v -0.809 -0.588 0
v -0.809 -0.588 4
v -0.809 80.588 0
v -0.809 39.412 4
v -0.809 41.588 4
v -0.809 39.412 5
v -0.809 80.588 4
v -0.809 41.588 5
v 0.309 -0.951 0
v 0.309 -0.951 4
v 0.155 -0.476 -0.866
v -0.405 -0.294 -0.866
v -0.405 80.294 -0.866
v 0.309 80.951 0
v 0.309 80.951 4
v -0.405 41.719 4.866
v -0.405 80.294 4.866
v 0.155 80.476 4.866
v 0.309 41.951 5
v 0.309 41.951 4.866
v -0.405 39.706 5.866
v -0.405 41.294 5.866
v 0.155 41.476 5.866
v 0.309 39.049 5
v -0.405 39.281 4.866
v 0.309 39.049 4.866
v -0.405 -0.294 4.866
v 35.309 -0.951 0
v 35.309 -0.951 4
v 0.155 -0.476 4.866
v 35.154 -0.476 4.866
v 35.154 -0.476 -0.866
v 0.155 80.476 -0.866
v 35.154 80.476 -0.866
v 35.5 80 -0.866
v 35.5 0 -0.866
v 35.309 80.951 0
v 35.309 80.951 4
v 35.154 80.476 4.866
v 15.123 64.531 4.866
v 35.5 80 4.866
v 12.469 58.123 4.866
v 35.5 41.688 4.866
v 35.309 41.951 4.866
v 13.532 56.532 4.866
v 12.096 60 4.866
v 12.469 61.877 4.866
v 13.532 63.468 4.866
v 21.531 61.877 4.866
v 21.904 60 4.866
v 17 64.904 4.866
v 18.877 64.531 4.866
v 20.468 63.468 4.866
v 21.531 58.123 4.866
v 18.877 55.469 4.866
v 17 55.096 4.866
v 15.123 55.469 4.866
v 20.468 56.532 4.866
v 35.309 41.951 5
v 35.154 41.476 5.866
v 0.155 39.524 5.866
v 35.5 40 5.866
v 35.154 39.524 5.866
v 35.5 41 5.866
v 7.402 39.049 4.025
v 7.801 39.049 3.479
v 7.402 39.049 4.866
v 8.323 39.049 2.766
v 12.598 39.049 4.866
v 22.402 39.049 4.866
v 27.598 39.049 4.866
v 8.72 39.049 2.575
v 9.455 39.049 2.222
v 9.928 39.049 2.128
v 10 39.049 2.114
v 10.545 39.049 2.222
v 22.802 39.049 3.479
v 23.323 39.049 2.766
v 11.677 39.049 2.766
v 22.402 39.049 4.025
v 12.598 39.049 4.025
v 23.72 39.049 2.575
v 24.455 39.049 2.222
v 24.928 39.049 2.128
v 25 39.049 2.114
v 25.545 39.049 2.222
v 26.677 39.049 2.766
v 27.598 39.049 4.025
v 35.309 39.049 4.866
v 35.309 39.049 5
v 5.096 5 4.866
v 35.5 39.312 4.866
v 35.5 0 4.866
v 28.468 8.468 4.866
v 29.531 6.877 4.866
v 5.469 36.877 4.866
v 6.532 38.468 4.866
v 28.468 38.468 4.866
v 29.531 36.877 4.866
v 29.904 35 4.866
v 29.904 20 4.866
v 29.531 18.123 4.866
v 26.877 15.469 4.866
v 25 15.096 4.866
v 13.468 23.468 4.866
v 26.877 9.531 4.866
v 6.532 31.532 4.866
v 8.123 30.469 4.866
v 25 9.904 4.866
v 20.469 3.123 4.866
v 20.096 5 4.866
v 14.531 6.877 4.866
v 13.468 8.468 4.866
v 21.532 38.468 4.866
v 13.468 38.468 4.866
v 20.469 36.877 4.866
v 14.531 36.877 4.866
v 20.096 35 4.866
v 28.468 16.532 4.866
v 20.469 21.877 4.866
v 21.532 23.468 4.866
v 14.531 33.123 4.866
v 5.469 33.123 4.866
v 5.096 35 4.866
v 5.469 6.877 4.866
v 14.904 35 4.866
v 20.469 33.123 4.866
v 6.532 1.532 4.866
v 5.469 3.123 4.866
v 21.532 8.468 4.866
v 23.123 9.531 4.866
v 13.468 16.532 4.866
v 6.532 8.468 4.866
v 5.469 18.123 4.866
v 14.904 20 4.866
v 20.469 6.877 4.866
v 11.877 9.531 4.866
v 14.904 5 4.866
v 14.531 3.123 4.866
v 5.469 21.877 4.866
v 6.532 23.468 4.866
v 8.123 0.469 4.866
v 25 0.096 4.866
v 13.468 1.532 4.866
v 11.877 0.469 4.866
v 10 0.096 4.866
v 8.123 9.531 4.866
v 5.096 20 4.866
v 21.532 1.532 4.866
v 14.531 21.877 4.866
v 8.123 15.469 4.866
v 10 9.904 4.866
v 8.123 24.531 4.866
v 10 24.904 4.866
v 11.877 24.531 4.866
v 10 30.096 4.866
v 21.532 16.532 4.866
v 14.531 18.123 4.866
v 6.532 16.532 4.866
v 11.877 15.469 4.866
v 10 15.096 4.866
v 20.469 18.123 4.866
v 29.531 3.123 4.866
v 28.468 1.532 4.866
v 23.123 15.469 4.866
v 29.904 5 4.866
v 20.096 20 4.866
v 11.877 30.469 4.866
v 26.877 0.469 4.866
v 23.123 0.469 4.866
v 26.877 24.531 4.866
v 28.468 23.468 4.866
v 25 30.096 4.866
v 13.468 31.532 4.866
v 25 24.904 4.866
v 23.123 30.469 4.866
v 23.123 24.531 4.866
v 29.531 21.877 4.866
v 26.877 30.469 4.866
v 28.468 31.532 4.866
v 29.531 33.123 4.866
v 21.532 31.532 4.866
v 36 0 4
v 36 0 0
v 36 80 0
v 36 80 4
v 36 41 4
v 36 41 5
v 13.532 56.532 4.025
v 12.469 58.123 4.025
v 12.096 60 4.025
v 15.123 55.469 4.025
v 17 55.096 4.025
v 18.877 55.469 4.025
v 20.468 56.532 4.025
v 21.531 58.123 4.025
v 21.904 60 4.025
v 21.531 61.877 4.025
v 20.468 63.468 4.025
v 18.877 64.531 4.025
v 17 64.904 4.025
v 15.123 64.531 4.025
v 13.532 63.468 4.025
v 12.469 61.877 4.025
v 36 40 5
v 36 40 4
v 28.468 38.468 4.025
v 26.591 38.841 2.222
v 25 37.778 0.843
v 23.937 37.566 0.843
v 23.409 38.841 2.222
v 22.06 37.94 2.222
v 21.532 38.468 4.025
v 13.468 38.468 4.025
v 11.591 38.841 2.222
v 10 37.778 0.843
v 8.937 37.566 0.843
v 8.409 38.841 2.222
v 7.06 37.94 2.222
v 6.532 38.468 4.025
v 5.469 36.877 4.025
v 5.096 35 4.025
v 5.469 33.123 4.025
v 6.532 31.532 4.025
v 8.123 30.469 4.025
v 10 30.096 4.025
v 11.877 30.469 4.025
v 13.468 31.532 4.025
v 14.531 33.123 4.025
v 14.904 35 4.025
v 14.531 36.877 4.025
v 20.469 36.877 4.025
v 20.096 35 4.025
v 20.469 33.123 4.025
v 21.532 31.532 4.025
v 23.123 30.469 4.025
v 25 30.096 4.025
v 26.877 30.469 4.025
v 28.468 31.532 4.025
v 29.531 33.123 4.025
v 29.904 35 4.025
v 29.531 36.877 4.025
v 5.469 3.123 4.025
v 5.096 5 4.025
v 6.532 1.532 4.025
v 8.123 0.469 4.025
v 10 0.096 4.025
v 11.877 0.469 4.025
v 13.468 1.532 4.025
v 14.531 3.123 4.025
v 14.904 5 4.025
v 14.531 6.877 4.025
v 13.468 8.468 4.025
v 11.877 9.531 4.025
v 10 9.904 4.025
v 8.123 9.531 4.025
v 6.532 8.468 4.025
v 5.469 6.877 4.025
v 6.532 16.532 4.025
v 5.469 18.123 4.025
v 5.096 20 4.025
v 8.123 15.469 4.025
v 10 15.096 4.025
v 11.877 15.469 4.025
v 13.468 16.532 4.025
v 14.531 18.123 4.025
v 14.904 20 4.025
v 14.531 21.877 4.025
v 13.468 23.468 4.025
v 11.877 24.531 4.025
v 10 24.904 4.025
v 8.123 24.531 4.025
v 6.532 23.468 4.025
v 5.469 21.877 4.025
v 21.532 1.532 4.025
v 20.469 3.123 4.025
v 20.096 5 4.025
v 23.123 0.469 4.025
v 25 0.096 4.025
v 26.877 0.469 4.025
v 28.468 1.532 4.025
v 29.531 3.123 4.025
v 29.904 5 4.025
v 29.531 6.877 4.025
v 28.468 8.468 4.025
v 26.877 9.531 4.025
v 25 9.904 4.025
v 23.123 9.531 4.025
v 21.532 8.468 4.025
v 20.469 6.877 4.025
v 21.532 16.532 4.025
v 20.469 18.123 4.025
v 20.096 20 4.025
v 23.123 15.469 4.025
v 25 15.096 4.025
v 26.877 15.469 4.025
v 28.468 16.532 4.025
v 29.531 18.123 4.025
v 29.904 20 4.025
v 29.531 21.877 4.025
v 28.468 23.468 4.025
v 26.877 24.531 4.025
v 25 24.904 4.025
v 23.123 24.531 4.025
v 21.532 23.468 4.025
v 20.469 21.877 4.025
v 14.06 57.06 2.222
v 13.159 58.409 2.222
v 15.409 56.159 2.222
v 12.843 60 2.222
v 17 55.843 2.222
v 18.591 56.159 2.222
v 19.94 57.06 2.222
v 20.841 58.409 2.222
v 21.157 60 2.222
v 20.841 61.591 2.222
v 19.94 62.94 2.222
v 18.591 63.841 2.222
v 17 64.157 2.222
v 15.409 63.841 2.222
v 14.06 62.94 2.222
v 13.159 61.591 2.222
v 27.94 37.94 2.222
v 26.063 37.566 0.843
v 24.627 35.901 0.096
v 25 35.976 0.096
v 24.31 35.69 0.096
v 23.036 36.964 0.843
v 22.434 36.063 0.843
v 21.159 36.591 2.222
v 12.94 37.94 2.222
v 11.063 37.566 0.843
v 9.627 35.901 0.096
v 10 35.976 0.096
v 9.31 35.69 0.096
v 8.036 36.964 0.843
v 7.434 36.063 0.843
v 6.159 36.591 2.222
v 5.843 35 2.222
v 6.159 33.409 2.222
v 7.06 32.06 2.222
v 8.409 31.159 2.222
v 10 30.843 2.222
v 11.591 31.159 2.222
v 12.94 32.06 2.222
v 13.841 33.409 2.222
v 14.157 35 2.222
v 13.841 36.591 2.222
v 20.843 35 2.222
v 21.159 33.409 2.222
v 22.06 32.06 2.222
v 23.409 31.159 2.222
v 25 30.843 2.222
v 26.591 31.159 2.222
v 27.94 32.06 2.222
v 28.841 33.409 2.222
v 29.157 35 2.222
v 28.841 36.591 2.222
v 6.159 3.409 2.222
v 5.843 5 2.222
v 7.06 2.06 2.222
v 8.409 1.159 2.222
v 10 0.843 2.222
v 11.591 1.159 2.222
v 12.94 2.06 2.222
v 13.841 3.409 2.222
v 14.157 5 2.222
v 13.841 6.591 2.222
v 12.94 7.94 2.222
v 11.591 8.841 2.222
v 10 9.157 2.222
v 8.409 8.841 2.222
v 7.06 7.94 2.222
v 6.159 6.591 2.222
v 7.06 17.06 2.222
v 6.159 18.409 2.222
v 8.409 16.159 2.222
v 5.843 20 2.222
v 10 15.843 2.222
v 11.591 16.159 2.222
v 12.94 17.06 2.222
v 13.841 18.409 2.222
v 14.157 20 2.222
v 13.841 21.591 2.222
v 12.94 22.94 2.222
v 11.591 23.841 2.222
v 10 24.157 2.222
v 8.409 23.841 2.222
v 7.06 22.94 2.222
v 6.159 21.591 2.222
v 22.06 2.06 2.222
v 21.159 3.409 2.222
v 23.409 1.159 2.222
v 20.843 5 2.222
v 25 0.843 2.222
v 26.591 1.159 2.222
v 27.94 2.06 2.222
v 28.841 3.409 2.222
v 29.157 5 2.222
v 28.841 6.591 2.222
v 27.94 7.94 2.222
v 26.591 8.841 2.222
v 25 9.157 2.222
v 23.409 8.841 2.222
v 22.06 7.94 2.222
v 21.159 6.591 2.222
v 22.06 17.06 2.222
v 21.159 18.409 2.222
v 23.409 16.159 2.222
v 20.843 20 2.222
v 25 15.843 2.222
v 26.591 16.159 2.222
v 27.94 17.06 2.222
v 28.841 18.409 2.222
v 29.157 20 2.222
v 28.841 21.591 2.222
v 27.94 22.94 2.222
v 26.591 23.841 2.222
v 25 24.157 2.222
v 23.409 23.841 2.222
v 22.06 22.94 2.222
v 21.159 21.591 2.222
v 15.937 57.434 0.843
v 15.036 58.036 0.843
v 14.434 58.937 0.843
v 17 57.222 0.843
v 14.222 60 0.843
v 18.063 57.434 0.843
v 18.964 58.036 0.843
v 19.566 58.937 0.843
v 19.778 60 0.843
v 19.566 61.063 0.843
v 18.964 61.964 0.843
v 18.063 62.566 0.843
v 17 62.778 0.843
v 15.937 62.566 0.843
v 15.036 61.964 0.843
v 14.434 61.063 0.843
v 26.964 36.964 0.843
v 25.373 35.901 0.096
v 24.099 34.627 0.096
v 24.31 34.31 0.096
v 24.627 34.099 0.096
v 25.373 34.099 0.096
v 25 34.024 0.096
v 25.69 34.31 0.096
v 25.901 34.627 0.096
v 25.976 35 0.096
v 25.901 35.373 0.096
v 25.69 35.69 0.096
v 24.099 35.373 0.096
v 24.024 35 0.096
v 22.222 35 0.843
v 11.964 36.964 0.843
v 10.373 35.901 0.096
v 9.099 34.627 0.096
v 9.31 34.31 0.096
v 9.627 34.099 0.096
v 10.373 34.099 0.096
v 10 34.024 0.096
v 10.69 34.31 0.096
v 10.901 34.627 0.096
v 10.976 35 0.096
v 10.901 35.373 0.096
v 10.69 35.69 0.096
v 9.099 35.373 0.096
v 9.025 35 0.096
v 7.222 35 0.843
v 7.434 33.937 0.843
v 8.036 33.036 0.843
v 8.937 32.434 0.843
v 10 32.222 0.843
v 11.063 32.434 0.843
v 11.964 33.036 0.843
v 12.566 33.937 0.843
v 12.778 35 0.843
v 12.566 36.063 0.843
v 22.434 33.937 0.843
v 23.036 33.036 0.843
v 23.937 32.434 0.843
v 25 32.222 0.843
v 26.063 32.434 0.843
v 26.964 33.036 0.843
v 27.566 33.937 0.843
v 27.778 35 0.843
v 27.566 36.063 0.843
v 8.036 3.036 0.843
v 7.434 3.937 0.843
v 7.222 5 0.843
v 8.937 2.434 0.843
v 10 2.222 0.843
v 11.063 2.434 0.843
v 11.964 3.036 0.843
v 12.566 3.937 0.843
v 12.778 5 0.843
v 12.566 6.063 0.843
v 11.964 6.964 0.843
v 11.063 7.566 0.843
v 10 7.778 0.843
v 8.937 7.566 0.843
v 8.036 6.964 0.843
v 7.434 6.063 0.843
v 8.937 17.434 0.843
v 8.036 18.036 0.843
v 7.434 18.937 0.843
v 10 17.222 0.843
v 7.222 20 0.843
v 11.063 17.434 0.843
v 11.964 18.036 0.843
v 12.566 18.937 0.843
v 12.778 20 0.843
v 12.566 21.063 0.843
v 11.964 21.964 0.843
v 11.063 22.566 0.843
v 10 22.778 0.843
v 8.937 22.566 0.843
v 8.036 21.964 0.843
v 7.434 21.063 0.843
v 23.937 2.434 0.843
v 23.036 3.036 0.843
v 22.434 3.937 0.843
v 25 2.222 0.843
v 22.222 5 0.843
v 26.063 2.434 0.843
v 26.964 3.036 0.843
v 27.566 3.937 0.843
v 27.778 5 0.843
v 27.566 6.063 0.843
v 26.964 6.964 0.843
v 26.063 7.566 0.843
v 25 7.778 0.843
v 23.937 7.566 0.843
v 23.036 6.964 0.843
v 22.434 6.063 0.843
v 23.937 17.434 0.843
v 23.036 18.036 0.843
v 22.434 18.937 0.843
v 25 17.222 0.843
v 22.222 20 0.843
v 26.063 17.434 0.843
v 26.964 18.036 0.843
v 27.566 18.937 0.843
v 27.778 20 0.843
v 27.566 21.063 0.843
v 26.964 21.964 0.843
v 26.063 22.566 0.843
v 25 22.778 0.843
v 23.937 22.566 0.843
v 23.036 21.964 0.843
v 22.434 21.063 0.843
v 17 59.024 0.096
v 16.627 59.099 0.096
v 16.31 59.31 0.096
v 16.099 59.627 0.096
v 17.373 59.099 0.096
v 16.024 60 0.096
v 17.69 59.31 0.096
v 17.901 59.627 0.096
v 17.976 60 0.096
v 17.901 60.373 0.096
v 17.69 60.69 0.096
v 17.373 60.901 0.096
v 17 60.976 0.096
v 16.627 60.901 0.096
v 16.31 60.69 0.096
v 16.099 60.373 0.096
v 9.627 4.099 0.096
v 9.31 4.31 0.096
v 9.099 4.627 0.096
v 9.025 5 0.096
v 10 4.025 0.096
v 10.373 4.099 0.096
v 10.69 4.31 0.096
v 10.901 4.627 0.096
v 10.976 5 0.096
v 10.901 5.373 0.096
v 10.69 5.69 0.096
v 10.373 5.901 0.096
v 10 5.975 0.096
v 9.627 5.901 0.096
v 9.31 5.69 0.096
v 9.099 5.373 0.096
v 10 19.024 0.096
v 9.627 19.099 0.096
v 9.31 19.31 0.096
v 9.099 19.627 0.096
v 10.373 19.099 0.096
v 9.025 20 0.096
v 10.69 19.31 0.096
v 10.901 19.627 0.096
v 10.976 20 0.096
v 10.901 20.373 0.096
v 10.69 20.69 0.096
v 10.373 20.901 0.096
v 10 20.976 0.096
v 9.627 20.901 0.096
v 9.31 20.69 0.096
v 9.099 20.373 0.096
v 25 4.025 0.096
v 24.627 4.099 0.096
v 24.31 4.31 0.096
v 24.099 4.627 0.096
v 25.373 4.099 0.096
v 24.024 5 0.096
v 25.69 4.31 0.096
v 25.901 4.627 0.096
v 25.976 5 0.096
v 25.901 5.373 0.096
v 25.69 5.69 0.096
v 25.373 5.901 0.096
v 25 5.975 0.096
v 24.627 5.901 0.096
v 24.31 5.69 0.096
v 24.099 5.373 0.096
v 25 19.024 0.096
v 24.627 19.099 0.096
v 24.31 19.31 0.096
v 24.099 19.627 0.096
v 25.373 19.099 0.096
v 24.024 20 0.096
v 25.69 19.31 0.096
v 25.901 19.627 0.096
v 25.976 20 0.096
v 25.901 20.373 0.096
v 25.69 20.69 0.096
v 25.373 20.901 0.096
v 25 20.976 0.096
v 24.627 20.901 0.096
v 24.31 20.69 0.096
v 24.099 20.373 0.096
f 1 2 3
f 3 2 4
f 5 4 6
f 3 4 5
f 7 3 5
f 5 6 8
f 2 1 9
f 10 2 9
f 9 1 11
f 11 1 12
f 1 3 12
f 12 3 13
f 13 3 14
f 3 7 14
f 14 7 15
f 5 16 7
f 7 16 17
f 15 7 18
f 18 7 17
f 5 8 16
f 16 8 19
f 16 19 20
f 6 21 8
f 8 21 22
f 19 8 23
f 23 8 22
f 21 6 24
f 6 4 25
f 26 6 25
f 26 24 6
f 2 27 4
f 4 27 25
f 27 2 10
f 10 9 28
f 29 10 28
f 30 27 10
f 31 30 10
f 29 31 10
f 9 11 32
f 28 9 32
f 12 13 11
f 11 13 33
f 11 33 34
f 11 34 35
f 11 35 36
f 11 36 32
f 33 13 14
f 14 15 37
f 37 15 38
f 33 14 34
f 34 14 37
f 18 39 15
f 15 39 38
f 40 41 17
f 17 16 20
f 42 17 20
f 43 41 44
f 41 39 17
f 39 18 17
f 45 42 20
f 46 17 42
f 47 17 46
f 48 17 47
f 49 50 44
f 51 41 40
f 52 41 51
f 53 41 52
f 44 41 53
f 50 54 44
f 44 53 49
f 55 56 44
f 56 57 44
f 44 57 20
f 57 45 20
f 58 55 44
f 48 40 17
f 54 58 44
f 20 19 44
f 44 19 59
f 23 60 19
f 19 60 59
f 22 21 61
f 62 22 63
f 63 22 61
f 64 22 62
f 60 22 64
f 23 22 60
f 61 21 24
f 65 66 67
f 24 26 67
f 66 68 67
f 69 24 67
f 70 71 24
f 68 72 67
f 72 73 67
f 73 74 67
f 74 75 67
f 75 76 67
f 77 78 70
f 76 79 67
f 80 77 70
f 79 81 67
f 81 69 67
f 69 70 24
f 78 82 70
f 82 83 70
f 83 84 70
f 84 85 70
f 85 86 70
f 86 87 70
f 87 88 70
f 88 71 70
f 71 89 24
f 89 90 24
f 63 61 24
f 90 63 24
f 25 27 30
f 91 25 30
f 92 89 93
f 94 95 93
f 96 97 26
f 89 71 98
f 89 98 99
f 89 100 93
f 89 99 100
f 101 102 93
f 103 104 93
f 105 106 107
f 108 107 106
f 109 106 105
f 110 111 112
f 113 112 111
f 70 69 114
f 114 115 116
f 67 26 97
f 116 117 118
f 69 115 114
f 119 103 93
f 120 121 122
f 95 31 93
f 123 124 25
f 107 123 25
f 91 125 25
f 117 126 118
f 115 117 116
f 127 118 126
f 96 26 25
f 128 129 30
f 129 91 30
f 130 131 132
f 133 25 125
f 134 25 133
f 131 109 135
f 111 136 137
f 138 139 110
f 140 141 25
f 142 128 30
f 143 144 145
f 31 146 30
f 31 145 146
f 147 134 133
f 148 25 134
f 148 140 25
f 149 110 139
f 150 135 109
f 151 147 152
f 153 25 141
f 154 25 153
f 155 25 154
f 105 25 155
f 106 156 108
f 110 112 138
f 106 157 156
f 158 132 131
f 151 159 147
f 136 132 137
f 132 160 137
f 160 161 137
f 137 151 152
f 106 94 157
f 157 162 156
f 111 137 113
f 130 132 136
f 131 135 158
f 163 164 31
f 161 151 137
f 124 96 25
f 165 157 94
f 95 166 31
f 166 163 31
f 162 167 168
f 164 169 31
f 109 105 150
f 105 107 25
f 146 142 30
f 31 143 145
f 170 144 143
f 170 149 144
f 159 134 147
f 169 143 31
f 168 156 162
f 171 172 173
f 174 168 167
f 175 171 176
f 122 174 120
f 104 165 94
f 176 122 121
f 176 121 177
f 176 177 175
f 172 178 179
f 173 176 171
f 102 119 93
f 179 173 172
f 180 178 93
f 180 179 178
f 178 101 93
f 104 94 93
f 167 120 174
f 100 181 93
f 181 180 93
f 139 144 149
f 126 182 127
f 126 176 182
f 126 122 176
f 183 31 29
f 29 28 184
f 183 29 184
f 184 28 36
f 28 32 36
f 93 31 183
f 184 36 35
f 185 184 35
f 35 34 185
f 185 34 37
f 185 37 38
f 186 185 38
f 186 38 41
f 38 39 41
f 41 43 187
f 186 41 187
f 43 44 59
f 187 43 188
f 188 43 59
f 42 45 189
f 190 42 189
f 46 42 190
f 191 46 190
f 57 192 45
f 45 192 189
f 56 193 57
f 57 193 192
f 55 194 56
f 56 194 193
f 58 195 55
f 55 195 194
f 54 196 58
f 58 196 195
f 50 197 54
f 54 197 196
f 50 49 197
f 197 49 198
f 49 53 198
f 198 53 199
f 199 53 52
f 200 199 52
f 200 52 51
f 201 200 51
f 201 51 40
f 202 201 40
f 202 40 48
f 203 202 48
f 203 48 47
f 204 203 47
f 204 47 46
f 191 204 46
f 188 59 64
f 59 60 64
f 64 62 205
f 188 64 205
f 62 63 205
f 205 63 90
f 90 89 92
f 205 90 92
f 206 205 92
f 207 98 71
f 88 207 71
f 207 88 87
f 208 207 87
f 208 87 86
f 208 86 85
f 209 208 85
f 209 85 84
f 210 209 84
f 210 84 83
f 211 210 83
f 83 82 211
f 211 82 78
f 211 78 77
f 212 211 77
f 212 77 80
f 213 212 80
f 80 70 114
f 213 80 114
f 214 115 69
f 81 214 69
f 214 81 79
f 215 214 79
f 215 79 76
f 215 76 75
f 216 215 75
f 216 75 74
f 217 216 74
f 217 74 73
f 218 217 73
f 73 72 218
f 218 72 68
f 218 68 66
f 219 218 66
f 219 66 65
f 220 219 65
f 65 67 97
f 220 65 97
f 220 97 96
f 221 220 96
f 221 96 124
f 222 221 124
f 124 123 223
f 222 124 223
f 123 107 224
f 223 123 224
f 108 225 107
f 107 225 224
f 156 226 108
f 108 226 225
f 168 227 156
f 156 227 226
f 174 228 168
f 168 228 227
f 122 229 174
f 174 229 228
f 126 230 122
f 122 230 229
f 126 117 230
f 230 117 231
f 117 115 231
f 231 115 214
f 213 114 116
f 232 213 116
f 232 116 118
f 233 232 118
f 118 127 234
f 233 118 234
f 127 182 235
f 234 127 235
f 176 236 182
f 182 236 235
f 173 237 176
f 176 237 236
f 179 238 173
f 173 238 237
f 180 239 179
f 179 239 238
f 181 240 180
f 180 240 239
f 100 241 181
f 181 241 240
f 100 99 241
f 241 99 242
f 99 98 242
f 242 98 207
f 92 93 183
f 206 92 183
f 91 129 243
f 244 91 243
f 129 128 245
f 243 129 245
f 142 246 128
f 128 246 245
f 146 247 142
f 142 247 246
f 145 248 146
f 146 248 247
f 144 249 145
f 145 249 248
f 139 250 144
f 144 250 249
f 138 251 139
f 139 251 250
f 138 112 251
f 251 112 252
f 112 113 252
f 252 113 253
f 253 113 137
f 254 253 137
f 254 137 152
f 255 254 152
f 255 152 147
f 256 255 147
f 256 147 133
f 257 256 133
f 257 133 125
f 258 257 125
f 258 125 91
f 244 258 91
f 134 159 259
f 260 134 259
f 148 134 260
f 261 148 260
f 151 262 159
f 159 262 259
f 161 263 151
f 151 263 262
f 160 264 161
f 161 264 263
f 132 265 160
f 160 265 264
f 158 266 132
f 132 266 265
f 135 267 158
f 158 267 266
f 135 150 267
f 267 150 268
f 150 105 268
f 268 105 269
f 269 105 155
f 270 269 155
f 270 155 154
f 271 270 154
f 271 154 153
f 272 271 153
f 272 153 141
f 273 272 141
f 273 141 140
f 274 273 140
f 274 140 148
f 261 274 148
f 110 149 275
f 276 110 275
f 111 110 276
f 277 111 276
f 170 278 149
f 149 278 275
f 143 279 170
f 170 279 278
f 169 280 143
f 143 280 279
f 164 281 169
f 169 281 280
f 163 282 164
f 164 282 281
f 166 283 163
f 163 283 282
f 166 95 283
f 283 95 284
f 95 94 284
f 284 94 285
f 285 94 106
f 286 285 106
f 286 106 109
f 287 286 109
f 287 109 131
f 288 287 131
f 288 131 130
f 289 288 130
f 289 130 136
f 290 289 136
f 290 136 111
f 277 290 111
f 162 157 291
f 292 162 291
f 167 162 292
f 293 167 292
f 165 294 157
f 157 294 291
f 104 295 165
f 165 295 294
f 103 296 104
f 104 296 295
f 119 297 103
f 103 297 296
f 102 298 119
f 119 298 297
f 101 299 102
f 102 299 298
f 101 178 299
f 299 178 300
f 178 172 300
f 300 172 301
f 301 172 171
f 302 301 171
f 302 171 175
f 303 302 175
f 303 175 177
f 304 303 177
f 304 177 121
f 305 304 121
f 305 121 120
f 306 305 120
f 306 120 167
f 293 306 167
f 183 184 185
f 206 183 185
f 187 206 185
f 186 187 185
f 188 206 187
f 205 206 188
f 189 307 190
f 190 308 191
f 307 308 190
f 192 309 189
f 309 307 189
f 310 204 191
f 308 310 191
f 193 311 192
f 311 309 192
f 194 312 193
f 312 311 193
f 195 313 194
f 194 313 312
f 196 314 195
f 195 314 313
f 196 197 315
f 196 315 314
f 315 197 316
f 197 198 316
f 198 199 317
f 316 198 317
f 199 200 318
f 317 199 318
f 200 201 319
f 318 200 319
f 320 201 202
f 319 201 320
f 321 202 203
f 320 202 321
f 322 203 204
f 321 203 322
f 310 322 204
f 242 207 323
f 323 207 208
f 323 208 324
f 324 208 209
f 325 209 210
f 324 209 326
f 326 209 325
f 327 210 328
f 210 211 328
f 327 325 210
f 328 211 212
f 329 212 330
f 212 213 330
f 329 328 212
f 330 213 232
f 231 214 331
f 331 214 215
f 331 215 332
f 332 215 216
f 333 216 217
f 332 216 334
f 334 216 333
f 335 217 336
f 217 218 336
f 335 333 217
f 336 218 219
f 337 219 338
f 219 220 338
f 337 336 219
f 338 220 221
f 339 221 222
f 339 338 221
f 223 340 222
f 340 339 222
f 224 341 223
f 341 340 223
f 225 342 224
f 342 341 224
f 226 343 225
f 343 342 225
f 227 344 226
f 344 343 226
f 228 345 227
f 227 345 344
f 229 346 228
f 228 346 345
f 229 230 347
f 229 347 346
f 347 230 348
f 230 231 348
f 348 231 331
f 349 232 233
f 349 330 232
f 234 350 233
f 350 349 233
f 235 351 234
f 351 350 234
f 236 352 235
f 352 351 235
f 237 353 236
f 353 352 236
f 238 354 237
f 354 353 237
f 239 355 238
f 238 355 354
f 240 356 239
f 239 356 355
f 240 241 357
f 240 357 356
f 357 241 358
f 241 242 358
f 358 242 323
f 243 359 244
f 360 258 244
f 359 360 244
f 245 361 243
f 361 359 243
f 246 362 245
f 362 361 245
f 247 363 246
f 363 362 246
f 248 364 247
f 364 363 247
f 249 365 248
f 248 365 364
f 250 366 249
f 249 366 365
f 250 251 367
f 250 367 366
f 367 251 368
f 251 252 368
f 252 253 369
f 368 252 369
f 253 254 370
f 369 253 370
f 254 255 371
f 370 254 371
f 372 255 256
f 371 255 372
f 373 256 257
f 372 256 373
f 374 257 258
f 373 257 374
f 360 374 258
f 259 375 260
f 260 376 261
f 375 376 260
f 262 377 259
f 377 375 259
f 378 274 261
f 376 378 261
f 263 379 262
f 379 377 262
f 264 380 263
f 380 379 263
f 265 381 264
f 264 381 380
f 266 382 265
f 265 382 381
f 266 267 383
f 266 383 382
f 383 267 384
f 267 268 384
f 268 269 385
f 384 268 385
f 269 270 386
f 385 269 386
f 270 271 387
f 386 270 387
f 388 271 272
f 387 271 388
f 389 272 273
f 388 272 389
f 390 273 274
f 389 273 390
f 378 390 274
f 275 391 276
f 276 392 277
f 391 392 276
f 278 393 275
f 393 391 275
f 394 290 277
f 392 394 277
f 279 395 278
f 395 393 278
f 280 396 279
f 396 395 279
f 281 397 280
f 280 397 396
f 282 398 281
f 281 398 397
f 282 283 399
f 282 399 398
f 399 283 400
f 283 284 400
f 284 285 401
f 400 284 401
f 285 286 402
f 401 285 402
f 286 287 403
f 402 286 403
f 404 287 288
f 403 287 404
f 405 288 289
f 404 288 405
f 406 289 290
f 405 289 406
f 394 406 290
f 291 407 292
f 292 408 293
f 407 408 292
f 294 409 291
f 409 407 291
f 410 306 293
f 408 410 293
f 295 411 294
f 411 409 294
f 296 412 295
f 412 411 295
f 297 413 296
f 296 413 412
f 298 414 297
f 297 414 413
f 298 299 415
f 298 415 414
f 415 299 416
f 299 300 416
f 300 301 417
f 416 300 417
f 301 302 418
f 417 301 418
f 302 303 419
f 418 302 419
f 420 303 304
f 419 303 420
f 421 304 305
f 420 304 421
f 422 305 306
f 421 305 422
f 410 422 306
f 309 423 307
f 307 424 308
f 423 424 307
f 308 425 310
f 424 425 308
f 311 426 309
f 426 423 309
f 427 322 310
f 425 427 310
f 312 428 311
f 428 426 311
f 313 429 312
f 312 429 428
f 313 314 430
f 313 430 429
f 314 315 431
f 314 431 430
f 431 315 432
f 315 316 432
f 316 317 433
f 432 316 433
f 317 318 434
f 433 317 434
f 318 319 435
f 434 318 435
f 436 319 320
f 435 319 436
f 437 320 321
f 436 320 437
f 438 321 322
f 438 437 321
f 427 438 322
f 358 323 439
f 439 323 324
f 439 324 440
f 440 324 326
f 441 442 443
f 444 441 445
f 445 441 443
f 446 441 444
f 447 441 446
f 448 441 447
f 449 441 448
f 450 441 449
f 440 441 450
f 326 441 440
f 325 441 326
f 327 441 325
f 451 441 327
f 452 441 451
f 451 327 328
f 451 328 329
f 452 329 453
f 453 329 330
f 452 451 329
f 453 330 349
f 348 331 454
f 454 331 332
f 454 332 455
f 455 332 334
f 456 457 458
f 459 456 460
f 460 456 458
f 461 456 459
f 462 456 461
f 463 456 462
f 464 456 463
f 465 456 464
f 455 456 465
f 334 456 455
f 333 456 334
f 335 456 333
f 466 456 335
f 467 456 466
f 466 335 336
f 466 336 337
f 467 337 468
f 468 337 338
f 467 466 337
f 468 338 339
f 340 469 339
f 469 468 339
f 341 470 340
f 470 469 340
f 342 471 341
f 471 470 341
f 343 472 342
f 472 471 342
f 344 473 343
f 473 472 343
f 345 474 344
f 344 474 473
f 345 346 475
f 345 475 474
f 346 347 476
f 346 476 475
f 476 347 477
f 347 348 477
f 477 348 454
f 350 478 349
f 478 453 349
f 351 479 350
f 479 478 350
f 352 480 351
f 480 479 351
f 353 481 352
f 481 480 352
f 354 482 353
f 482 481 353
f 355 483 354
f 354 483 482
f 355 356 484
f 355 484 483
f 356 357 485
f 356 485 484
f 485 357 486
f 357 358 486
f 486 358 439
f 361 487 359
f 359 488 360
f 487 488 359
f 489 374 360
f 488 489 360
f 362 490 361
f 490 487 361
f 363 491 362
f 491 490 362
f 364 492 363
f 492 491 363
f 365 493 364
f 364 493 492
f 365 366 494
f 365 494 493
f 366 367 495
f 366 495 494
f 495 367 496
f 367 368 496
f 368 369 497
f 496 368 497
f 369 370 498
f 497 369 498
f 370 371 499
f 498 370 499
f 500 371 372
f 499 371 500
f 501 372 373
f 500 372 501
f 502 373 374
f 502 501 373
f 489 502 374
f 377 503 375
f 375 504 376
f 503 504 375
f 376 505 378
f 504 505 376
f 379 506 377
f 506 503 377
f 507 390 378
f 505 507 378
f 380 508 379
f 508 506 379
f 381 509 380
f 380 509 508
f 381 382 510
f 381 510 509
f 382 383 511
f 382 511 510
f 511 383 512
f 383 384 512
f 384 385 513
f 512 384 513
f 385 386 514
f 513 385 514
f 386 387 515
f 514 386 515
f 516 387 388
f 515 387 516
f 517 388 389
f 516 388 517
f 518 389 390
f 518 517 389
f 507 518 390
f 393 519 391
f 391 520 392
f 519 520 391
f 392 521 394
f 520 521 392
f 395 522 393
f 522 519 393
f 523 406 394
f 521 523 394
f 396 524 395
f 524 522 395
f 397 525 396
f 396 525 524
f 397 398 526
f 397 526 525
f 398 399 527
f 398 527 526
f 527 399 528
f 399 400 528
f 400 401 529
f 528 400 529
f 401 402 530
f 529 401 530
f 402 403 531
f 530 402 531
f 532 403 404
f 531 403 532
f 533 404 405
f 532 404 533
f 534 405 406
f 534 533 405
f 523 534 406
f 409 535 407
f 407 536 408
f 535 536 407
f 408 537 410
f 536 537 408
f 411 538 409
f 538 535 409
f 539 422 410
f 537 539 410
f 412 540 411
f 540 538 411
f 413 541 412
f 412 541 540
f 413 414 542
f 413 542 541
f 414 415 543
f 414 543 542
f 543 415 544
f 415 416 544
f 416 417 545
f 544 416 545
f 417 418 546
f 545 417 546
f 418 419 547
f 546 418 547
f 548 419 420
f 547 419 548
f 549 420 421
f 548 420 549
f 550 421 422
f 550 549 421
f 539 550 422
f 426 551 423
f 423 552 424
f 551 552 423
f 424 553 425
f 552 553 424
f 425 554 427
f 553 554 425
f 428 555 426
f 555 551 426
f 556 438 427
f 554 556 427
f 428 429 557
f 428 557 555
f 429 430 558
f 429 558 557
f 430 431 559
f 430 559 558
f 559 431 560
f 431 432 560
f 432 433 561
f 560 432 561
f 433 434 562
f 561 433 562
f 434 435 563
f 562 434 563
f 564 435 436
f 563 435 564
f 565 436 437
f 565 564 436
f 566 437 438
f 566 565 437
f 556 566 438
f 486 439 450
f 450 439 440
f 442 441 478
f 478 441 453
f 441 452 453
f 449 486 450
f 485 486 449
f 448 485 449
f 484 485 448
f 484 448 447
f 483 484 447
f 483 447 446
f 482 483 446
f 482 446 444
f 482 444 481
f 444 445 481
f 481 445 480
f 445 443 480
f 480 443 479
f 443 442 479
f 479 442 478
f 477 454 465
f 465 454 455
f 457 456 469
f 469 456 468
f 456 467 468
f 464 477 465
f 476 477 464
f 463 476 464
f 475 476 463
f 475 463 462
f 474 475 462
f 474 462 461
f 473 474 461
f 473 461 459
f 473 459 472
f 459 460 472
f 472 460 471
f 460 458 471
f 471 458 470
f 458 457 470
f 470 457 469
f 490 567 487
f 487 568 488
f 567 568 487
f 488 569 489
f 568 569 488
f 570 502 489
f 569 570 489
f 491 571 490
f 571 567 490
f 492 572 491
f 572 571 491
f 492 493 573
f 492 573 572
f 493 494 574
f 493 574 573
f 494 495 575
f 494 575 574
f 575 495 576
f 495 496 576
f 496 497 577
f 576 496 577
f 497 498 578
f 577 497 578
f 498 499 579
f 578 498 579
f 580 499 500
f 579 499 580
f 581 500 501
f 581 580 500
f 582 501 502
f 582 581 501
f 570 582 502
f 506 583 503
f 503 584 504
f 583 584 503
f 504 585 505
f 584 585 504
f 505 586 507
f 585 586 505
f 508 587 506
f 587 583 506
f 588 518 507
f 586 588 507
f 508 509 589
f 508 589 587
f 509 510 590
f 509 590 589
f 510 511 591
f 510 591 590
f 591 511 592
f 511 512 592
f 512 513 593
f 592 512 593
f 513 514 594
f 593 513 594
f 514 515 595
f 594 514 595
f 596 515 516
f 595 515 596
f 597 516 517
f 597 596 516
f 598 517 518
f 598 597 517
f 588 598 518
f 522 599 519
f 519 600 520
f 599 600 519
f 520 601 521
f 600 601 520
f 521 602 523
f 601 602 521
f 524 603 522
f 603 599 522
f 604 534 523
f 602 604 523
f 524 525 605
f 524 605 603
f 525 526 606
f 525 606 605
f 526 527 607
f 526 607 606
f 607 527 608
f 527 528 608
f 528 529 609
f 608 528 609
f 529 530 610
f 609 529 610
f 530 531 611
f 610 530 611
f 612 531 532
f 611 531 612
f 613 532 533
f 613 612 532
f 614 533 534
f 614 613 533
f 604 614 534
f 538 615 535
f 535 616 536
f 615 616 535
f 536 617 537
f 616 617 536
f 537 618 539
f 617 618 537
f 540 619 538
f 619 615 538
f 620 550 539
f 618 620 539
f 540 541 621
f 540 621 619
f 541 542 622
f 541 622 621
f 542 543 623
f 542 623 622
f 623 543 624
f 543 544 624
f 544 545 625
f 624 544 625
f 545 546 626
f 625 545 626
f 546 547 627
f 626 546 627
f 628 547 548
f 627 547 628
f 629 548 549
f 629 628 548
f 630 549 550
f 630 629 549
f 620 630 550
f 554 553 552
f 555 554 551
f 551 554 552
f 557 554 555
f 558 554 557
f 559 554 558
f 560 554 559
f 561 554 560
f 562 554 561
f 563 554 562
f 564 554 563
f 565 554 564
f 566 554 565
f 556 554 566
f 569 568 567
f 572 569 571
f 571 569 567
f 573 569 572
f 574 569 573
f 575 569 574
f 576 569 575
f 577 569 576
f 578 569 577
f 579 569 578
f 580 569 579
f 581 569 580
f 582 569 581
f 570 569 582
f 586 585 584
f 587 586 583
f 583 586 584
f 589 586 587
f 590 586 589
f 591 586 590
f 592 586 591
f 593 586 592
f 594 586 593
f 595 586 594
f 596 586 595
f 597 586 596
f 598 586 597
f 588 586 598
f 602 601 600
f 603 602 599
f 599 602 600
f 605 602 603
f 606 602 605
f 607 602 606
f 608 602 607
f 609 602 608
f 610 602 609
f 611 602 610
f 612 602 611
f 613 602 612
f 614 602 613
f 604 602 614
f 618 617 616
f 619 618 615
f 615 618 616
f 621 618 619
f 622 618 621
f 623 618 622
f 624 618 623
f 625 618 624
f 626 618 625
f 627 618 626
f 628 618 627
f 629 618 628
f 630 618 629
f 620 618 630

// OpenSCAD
// Loguncov Maxim 13.12.13


//$fn=128;


translate([0,40,0])
minkowski()
{cube([35,1,5]);
sphere(1);
}

difference() {

//основа
minkowski()
{cube([35,80,4]);
sphere(1);
}

//отверстия
translate([10,5,5])sphere(5);
translate([25,5,5])sphere(5);
translate([10,20,5])sphere(5);
translate([25,20,5])sphere(5);
translate([10,35,5])sphere(5);
translate([25,35,5])sphere(5);

translate([17,60,5])sphere(5);



}
